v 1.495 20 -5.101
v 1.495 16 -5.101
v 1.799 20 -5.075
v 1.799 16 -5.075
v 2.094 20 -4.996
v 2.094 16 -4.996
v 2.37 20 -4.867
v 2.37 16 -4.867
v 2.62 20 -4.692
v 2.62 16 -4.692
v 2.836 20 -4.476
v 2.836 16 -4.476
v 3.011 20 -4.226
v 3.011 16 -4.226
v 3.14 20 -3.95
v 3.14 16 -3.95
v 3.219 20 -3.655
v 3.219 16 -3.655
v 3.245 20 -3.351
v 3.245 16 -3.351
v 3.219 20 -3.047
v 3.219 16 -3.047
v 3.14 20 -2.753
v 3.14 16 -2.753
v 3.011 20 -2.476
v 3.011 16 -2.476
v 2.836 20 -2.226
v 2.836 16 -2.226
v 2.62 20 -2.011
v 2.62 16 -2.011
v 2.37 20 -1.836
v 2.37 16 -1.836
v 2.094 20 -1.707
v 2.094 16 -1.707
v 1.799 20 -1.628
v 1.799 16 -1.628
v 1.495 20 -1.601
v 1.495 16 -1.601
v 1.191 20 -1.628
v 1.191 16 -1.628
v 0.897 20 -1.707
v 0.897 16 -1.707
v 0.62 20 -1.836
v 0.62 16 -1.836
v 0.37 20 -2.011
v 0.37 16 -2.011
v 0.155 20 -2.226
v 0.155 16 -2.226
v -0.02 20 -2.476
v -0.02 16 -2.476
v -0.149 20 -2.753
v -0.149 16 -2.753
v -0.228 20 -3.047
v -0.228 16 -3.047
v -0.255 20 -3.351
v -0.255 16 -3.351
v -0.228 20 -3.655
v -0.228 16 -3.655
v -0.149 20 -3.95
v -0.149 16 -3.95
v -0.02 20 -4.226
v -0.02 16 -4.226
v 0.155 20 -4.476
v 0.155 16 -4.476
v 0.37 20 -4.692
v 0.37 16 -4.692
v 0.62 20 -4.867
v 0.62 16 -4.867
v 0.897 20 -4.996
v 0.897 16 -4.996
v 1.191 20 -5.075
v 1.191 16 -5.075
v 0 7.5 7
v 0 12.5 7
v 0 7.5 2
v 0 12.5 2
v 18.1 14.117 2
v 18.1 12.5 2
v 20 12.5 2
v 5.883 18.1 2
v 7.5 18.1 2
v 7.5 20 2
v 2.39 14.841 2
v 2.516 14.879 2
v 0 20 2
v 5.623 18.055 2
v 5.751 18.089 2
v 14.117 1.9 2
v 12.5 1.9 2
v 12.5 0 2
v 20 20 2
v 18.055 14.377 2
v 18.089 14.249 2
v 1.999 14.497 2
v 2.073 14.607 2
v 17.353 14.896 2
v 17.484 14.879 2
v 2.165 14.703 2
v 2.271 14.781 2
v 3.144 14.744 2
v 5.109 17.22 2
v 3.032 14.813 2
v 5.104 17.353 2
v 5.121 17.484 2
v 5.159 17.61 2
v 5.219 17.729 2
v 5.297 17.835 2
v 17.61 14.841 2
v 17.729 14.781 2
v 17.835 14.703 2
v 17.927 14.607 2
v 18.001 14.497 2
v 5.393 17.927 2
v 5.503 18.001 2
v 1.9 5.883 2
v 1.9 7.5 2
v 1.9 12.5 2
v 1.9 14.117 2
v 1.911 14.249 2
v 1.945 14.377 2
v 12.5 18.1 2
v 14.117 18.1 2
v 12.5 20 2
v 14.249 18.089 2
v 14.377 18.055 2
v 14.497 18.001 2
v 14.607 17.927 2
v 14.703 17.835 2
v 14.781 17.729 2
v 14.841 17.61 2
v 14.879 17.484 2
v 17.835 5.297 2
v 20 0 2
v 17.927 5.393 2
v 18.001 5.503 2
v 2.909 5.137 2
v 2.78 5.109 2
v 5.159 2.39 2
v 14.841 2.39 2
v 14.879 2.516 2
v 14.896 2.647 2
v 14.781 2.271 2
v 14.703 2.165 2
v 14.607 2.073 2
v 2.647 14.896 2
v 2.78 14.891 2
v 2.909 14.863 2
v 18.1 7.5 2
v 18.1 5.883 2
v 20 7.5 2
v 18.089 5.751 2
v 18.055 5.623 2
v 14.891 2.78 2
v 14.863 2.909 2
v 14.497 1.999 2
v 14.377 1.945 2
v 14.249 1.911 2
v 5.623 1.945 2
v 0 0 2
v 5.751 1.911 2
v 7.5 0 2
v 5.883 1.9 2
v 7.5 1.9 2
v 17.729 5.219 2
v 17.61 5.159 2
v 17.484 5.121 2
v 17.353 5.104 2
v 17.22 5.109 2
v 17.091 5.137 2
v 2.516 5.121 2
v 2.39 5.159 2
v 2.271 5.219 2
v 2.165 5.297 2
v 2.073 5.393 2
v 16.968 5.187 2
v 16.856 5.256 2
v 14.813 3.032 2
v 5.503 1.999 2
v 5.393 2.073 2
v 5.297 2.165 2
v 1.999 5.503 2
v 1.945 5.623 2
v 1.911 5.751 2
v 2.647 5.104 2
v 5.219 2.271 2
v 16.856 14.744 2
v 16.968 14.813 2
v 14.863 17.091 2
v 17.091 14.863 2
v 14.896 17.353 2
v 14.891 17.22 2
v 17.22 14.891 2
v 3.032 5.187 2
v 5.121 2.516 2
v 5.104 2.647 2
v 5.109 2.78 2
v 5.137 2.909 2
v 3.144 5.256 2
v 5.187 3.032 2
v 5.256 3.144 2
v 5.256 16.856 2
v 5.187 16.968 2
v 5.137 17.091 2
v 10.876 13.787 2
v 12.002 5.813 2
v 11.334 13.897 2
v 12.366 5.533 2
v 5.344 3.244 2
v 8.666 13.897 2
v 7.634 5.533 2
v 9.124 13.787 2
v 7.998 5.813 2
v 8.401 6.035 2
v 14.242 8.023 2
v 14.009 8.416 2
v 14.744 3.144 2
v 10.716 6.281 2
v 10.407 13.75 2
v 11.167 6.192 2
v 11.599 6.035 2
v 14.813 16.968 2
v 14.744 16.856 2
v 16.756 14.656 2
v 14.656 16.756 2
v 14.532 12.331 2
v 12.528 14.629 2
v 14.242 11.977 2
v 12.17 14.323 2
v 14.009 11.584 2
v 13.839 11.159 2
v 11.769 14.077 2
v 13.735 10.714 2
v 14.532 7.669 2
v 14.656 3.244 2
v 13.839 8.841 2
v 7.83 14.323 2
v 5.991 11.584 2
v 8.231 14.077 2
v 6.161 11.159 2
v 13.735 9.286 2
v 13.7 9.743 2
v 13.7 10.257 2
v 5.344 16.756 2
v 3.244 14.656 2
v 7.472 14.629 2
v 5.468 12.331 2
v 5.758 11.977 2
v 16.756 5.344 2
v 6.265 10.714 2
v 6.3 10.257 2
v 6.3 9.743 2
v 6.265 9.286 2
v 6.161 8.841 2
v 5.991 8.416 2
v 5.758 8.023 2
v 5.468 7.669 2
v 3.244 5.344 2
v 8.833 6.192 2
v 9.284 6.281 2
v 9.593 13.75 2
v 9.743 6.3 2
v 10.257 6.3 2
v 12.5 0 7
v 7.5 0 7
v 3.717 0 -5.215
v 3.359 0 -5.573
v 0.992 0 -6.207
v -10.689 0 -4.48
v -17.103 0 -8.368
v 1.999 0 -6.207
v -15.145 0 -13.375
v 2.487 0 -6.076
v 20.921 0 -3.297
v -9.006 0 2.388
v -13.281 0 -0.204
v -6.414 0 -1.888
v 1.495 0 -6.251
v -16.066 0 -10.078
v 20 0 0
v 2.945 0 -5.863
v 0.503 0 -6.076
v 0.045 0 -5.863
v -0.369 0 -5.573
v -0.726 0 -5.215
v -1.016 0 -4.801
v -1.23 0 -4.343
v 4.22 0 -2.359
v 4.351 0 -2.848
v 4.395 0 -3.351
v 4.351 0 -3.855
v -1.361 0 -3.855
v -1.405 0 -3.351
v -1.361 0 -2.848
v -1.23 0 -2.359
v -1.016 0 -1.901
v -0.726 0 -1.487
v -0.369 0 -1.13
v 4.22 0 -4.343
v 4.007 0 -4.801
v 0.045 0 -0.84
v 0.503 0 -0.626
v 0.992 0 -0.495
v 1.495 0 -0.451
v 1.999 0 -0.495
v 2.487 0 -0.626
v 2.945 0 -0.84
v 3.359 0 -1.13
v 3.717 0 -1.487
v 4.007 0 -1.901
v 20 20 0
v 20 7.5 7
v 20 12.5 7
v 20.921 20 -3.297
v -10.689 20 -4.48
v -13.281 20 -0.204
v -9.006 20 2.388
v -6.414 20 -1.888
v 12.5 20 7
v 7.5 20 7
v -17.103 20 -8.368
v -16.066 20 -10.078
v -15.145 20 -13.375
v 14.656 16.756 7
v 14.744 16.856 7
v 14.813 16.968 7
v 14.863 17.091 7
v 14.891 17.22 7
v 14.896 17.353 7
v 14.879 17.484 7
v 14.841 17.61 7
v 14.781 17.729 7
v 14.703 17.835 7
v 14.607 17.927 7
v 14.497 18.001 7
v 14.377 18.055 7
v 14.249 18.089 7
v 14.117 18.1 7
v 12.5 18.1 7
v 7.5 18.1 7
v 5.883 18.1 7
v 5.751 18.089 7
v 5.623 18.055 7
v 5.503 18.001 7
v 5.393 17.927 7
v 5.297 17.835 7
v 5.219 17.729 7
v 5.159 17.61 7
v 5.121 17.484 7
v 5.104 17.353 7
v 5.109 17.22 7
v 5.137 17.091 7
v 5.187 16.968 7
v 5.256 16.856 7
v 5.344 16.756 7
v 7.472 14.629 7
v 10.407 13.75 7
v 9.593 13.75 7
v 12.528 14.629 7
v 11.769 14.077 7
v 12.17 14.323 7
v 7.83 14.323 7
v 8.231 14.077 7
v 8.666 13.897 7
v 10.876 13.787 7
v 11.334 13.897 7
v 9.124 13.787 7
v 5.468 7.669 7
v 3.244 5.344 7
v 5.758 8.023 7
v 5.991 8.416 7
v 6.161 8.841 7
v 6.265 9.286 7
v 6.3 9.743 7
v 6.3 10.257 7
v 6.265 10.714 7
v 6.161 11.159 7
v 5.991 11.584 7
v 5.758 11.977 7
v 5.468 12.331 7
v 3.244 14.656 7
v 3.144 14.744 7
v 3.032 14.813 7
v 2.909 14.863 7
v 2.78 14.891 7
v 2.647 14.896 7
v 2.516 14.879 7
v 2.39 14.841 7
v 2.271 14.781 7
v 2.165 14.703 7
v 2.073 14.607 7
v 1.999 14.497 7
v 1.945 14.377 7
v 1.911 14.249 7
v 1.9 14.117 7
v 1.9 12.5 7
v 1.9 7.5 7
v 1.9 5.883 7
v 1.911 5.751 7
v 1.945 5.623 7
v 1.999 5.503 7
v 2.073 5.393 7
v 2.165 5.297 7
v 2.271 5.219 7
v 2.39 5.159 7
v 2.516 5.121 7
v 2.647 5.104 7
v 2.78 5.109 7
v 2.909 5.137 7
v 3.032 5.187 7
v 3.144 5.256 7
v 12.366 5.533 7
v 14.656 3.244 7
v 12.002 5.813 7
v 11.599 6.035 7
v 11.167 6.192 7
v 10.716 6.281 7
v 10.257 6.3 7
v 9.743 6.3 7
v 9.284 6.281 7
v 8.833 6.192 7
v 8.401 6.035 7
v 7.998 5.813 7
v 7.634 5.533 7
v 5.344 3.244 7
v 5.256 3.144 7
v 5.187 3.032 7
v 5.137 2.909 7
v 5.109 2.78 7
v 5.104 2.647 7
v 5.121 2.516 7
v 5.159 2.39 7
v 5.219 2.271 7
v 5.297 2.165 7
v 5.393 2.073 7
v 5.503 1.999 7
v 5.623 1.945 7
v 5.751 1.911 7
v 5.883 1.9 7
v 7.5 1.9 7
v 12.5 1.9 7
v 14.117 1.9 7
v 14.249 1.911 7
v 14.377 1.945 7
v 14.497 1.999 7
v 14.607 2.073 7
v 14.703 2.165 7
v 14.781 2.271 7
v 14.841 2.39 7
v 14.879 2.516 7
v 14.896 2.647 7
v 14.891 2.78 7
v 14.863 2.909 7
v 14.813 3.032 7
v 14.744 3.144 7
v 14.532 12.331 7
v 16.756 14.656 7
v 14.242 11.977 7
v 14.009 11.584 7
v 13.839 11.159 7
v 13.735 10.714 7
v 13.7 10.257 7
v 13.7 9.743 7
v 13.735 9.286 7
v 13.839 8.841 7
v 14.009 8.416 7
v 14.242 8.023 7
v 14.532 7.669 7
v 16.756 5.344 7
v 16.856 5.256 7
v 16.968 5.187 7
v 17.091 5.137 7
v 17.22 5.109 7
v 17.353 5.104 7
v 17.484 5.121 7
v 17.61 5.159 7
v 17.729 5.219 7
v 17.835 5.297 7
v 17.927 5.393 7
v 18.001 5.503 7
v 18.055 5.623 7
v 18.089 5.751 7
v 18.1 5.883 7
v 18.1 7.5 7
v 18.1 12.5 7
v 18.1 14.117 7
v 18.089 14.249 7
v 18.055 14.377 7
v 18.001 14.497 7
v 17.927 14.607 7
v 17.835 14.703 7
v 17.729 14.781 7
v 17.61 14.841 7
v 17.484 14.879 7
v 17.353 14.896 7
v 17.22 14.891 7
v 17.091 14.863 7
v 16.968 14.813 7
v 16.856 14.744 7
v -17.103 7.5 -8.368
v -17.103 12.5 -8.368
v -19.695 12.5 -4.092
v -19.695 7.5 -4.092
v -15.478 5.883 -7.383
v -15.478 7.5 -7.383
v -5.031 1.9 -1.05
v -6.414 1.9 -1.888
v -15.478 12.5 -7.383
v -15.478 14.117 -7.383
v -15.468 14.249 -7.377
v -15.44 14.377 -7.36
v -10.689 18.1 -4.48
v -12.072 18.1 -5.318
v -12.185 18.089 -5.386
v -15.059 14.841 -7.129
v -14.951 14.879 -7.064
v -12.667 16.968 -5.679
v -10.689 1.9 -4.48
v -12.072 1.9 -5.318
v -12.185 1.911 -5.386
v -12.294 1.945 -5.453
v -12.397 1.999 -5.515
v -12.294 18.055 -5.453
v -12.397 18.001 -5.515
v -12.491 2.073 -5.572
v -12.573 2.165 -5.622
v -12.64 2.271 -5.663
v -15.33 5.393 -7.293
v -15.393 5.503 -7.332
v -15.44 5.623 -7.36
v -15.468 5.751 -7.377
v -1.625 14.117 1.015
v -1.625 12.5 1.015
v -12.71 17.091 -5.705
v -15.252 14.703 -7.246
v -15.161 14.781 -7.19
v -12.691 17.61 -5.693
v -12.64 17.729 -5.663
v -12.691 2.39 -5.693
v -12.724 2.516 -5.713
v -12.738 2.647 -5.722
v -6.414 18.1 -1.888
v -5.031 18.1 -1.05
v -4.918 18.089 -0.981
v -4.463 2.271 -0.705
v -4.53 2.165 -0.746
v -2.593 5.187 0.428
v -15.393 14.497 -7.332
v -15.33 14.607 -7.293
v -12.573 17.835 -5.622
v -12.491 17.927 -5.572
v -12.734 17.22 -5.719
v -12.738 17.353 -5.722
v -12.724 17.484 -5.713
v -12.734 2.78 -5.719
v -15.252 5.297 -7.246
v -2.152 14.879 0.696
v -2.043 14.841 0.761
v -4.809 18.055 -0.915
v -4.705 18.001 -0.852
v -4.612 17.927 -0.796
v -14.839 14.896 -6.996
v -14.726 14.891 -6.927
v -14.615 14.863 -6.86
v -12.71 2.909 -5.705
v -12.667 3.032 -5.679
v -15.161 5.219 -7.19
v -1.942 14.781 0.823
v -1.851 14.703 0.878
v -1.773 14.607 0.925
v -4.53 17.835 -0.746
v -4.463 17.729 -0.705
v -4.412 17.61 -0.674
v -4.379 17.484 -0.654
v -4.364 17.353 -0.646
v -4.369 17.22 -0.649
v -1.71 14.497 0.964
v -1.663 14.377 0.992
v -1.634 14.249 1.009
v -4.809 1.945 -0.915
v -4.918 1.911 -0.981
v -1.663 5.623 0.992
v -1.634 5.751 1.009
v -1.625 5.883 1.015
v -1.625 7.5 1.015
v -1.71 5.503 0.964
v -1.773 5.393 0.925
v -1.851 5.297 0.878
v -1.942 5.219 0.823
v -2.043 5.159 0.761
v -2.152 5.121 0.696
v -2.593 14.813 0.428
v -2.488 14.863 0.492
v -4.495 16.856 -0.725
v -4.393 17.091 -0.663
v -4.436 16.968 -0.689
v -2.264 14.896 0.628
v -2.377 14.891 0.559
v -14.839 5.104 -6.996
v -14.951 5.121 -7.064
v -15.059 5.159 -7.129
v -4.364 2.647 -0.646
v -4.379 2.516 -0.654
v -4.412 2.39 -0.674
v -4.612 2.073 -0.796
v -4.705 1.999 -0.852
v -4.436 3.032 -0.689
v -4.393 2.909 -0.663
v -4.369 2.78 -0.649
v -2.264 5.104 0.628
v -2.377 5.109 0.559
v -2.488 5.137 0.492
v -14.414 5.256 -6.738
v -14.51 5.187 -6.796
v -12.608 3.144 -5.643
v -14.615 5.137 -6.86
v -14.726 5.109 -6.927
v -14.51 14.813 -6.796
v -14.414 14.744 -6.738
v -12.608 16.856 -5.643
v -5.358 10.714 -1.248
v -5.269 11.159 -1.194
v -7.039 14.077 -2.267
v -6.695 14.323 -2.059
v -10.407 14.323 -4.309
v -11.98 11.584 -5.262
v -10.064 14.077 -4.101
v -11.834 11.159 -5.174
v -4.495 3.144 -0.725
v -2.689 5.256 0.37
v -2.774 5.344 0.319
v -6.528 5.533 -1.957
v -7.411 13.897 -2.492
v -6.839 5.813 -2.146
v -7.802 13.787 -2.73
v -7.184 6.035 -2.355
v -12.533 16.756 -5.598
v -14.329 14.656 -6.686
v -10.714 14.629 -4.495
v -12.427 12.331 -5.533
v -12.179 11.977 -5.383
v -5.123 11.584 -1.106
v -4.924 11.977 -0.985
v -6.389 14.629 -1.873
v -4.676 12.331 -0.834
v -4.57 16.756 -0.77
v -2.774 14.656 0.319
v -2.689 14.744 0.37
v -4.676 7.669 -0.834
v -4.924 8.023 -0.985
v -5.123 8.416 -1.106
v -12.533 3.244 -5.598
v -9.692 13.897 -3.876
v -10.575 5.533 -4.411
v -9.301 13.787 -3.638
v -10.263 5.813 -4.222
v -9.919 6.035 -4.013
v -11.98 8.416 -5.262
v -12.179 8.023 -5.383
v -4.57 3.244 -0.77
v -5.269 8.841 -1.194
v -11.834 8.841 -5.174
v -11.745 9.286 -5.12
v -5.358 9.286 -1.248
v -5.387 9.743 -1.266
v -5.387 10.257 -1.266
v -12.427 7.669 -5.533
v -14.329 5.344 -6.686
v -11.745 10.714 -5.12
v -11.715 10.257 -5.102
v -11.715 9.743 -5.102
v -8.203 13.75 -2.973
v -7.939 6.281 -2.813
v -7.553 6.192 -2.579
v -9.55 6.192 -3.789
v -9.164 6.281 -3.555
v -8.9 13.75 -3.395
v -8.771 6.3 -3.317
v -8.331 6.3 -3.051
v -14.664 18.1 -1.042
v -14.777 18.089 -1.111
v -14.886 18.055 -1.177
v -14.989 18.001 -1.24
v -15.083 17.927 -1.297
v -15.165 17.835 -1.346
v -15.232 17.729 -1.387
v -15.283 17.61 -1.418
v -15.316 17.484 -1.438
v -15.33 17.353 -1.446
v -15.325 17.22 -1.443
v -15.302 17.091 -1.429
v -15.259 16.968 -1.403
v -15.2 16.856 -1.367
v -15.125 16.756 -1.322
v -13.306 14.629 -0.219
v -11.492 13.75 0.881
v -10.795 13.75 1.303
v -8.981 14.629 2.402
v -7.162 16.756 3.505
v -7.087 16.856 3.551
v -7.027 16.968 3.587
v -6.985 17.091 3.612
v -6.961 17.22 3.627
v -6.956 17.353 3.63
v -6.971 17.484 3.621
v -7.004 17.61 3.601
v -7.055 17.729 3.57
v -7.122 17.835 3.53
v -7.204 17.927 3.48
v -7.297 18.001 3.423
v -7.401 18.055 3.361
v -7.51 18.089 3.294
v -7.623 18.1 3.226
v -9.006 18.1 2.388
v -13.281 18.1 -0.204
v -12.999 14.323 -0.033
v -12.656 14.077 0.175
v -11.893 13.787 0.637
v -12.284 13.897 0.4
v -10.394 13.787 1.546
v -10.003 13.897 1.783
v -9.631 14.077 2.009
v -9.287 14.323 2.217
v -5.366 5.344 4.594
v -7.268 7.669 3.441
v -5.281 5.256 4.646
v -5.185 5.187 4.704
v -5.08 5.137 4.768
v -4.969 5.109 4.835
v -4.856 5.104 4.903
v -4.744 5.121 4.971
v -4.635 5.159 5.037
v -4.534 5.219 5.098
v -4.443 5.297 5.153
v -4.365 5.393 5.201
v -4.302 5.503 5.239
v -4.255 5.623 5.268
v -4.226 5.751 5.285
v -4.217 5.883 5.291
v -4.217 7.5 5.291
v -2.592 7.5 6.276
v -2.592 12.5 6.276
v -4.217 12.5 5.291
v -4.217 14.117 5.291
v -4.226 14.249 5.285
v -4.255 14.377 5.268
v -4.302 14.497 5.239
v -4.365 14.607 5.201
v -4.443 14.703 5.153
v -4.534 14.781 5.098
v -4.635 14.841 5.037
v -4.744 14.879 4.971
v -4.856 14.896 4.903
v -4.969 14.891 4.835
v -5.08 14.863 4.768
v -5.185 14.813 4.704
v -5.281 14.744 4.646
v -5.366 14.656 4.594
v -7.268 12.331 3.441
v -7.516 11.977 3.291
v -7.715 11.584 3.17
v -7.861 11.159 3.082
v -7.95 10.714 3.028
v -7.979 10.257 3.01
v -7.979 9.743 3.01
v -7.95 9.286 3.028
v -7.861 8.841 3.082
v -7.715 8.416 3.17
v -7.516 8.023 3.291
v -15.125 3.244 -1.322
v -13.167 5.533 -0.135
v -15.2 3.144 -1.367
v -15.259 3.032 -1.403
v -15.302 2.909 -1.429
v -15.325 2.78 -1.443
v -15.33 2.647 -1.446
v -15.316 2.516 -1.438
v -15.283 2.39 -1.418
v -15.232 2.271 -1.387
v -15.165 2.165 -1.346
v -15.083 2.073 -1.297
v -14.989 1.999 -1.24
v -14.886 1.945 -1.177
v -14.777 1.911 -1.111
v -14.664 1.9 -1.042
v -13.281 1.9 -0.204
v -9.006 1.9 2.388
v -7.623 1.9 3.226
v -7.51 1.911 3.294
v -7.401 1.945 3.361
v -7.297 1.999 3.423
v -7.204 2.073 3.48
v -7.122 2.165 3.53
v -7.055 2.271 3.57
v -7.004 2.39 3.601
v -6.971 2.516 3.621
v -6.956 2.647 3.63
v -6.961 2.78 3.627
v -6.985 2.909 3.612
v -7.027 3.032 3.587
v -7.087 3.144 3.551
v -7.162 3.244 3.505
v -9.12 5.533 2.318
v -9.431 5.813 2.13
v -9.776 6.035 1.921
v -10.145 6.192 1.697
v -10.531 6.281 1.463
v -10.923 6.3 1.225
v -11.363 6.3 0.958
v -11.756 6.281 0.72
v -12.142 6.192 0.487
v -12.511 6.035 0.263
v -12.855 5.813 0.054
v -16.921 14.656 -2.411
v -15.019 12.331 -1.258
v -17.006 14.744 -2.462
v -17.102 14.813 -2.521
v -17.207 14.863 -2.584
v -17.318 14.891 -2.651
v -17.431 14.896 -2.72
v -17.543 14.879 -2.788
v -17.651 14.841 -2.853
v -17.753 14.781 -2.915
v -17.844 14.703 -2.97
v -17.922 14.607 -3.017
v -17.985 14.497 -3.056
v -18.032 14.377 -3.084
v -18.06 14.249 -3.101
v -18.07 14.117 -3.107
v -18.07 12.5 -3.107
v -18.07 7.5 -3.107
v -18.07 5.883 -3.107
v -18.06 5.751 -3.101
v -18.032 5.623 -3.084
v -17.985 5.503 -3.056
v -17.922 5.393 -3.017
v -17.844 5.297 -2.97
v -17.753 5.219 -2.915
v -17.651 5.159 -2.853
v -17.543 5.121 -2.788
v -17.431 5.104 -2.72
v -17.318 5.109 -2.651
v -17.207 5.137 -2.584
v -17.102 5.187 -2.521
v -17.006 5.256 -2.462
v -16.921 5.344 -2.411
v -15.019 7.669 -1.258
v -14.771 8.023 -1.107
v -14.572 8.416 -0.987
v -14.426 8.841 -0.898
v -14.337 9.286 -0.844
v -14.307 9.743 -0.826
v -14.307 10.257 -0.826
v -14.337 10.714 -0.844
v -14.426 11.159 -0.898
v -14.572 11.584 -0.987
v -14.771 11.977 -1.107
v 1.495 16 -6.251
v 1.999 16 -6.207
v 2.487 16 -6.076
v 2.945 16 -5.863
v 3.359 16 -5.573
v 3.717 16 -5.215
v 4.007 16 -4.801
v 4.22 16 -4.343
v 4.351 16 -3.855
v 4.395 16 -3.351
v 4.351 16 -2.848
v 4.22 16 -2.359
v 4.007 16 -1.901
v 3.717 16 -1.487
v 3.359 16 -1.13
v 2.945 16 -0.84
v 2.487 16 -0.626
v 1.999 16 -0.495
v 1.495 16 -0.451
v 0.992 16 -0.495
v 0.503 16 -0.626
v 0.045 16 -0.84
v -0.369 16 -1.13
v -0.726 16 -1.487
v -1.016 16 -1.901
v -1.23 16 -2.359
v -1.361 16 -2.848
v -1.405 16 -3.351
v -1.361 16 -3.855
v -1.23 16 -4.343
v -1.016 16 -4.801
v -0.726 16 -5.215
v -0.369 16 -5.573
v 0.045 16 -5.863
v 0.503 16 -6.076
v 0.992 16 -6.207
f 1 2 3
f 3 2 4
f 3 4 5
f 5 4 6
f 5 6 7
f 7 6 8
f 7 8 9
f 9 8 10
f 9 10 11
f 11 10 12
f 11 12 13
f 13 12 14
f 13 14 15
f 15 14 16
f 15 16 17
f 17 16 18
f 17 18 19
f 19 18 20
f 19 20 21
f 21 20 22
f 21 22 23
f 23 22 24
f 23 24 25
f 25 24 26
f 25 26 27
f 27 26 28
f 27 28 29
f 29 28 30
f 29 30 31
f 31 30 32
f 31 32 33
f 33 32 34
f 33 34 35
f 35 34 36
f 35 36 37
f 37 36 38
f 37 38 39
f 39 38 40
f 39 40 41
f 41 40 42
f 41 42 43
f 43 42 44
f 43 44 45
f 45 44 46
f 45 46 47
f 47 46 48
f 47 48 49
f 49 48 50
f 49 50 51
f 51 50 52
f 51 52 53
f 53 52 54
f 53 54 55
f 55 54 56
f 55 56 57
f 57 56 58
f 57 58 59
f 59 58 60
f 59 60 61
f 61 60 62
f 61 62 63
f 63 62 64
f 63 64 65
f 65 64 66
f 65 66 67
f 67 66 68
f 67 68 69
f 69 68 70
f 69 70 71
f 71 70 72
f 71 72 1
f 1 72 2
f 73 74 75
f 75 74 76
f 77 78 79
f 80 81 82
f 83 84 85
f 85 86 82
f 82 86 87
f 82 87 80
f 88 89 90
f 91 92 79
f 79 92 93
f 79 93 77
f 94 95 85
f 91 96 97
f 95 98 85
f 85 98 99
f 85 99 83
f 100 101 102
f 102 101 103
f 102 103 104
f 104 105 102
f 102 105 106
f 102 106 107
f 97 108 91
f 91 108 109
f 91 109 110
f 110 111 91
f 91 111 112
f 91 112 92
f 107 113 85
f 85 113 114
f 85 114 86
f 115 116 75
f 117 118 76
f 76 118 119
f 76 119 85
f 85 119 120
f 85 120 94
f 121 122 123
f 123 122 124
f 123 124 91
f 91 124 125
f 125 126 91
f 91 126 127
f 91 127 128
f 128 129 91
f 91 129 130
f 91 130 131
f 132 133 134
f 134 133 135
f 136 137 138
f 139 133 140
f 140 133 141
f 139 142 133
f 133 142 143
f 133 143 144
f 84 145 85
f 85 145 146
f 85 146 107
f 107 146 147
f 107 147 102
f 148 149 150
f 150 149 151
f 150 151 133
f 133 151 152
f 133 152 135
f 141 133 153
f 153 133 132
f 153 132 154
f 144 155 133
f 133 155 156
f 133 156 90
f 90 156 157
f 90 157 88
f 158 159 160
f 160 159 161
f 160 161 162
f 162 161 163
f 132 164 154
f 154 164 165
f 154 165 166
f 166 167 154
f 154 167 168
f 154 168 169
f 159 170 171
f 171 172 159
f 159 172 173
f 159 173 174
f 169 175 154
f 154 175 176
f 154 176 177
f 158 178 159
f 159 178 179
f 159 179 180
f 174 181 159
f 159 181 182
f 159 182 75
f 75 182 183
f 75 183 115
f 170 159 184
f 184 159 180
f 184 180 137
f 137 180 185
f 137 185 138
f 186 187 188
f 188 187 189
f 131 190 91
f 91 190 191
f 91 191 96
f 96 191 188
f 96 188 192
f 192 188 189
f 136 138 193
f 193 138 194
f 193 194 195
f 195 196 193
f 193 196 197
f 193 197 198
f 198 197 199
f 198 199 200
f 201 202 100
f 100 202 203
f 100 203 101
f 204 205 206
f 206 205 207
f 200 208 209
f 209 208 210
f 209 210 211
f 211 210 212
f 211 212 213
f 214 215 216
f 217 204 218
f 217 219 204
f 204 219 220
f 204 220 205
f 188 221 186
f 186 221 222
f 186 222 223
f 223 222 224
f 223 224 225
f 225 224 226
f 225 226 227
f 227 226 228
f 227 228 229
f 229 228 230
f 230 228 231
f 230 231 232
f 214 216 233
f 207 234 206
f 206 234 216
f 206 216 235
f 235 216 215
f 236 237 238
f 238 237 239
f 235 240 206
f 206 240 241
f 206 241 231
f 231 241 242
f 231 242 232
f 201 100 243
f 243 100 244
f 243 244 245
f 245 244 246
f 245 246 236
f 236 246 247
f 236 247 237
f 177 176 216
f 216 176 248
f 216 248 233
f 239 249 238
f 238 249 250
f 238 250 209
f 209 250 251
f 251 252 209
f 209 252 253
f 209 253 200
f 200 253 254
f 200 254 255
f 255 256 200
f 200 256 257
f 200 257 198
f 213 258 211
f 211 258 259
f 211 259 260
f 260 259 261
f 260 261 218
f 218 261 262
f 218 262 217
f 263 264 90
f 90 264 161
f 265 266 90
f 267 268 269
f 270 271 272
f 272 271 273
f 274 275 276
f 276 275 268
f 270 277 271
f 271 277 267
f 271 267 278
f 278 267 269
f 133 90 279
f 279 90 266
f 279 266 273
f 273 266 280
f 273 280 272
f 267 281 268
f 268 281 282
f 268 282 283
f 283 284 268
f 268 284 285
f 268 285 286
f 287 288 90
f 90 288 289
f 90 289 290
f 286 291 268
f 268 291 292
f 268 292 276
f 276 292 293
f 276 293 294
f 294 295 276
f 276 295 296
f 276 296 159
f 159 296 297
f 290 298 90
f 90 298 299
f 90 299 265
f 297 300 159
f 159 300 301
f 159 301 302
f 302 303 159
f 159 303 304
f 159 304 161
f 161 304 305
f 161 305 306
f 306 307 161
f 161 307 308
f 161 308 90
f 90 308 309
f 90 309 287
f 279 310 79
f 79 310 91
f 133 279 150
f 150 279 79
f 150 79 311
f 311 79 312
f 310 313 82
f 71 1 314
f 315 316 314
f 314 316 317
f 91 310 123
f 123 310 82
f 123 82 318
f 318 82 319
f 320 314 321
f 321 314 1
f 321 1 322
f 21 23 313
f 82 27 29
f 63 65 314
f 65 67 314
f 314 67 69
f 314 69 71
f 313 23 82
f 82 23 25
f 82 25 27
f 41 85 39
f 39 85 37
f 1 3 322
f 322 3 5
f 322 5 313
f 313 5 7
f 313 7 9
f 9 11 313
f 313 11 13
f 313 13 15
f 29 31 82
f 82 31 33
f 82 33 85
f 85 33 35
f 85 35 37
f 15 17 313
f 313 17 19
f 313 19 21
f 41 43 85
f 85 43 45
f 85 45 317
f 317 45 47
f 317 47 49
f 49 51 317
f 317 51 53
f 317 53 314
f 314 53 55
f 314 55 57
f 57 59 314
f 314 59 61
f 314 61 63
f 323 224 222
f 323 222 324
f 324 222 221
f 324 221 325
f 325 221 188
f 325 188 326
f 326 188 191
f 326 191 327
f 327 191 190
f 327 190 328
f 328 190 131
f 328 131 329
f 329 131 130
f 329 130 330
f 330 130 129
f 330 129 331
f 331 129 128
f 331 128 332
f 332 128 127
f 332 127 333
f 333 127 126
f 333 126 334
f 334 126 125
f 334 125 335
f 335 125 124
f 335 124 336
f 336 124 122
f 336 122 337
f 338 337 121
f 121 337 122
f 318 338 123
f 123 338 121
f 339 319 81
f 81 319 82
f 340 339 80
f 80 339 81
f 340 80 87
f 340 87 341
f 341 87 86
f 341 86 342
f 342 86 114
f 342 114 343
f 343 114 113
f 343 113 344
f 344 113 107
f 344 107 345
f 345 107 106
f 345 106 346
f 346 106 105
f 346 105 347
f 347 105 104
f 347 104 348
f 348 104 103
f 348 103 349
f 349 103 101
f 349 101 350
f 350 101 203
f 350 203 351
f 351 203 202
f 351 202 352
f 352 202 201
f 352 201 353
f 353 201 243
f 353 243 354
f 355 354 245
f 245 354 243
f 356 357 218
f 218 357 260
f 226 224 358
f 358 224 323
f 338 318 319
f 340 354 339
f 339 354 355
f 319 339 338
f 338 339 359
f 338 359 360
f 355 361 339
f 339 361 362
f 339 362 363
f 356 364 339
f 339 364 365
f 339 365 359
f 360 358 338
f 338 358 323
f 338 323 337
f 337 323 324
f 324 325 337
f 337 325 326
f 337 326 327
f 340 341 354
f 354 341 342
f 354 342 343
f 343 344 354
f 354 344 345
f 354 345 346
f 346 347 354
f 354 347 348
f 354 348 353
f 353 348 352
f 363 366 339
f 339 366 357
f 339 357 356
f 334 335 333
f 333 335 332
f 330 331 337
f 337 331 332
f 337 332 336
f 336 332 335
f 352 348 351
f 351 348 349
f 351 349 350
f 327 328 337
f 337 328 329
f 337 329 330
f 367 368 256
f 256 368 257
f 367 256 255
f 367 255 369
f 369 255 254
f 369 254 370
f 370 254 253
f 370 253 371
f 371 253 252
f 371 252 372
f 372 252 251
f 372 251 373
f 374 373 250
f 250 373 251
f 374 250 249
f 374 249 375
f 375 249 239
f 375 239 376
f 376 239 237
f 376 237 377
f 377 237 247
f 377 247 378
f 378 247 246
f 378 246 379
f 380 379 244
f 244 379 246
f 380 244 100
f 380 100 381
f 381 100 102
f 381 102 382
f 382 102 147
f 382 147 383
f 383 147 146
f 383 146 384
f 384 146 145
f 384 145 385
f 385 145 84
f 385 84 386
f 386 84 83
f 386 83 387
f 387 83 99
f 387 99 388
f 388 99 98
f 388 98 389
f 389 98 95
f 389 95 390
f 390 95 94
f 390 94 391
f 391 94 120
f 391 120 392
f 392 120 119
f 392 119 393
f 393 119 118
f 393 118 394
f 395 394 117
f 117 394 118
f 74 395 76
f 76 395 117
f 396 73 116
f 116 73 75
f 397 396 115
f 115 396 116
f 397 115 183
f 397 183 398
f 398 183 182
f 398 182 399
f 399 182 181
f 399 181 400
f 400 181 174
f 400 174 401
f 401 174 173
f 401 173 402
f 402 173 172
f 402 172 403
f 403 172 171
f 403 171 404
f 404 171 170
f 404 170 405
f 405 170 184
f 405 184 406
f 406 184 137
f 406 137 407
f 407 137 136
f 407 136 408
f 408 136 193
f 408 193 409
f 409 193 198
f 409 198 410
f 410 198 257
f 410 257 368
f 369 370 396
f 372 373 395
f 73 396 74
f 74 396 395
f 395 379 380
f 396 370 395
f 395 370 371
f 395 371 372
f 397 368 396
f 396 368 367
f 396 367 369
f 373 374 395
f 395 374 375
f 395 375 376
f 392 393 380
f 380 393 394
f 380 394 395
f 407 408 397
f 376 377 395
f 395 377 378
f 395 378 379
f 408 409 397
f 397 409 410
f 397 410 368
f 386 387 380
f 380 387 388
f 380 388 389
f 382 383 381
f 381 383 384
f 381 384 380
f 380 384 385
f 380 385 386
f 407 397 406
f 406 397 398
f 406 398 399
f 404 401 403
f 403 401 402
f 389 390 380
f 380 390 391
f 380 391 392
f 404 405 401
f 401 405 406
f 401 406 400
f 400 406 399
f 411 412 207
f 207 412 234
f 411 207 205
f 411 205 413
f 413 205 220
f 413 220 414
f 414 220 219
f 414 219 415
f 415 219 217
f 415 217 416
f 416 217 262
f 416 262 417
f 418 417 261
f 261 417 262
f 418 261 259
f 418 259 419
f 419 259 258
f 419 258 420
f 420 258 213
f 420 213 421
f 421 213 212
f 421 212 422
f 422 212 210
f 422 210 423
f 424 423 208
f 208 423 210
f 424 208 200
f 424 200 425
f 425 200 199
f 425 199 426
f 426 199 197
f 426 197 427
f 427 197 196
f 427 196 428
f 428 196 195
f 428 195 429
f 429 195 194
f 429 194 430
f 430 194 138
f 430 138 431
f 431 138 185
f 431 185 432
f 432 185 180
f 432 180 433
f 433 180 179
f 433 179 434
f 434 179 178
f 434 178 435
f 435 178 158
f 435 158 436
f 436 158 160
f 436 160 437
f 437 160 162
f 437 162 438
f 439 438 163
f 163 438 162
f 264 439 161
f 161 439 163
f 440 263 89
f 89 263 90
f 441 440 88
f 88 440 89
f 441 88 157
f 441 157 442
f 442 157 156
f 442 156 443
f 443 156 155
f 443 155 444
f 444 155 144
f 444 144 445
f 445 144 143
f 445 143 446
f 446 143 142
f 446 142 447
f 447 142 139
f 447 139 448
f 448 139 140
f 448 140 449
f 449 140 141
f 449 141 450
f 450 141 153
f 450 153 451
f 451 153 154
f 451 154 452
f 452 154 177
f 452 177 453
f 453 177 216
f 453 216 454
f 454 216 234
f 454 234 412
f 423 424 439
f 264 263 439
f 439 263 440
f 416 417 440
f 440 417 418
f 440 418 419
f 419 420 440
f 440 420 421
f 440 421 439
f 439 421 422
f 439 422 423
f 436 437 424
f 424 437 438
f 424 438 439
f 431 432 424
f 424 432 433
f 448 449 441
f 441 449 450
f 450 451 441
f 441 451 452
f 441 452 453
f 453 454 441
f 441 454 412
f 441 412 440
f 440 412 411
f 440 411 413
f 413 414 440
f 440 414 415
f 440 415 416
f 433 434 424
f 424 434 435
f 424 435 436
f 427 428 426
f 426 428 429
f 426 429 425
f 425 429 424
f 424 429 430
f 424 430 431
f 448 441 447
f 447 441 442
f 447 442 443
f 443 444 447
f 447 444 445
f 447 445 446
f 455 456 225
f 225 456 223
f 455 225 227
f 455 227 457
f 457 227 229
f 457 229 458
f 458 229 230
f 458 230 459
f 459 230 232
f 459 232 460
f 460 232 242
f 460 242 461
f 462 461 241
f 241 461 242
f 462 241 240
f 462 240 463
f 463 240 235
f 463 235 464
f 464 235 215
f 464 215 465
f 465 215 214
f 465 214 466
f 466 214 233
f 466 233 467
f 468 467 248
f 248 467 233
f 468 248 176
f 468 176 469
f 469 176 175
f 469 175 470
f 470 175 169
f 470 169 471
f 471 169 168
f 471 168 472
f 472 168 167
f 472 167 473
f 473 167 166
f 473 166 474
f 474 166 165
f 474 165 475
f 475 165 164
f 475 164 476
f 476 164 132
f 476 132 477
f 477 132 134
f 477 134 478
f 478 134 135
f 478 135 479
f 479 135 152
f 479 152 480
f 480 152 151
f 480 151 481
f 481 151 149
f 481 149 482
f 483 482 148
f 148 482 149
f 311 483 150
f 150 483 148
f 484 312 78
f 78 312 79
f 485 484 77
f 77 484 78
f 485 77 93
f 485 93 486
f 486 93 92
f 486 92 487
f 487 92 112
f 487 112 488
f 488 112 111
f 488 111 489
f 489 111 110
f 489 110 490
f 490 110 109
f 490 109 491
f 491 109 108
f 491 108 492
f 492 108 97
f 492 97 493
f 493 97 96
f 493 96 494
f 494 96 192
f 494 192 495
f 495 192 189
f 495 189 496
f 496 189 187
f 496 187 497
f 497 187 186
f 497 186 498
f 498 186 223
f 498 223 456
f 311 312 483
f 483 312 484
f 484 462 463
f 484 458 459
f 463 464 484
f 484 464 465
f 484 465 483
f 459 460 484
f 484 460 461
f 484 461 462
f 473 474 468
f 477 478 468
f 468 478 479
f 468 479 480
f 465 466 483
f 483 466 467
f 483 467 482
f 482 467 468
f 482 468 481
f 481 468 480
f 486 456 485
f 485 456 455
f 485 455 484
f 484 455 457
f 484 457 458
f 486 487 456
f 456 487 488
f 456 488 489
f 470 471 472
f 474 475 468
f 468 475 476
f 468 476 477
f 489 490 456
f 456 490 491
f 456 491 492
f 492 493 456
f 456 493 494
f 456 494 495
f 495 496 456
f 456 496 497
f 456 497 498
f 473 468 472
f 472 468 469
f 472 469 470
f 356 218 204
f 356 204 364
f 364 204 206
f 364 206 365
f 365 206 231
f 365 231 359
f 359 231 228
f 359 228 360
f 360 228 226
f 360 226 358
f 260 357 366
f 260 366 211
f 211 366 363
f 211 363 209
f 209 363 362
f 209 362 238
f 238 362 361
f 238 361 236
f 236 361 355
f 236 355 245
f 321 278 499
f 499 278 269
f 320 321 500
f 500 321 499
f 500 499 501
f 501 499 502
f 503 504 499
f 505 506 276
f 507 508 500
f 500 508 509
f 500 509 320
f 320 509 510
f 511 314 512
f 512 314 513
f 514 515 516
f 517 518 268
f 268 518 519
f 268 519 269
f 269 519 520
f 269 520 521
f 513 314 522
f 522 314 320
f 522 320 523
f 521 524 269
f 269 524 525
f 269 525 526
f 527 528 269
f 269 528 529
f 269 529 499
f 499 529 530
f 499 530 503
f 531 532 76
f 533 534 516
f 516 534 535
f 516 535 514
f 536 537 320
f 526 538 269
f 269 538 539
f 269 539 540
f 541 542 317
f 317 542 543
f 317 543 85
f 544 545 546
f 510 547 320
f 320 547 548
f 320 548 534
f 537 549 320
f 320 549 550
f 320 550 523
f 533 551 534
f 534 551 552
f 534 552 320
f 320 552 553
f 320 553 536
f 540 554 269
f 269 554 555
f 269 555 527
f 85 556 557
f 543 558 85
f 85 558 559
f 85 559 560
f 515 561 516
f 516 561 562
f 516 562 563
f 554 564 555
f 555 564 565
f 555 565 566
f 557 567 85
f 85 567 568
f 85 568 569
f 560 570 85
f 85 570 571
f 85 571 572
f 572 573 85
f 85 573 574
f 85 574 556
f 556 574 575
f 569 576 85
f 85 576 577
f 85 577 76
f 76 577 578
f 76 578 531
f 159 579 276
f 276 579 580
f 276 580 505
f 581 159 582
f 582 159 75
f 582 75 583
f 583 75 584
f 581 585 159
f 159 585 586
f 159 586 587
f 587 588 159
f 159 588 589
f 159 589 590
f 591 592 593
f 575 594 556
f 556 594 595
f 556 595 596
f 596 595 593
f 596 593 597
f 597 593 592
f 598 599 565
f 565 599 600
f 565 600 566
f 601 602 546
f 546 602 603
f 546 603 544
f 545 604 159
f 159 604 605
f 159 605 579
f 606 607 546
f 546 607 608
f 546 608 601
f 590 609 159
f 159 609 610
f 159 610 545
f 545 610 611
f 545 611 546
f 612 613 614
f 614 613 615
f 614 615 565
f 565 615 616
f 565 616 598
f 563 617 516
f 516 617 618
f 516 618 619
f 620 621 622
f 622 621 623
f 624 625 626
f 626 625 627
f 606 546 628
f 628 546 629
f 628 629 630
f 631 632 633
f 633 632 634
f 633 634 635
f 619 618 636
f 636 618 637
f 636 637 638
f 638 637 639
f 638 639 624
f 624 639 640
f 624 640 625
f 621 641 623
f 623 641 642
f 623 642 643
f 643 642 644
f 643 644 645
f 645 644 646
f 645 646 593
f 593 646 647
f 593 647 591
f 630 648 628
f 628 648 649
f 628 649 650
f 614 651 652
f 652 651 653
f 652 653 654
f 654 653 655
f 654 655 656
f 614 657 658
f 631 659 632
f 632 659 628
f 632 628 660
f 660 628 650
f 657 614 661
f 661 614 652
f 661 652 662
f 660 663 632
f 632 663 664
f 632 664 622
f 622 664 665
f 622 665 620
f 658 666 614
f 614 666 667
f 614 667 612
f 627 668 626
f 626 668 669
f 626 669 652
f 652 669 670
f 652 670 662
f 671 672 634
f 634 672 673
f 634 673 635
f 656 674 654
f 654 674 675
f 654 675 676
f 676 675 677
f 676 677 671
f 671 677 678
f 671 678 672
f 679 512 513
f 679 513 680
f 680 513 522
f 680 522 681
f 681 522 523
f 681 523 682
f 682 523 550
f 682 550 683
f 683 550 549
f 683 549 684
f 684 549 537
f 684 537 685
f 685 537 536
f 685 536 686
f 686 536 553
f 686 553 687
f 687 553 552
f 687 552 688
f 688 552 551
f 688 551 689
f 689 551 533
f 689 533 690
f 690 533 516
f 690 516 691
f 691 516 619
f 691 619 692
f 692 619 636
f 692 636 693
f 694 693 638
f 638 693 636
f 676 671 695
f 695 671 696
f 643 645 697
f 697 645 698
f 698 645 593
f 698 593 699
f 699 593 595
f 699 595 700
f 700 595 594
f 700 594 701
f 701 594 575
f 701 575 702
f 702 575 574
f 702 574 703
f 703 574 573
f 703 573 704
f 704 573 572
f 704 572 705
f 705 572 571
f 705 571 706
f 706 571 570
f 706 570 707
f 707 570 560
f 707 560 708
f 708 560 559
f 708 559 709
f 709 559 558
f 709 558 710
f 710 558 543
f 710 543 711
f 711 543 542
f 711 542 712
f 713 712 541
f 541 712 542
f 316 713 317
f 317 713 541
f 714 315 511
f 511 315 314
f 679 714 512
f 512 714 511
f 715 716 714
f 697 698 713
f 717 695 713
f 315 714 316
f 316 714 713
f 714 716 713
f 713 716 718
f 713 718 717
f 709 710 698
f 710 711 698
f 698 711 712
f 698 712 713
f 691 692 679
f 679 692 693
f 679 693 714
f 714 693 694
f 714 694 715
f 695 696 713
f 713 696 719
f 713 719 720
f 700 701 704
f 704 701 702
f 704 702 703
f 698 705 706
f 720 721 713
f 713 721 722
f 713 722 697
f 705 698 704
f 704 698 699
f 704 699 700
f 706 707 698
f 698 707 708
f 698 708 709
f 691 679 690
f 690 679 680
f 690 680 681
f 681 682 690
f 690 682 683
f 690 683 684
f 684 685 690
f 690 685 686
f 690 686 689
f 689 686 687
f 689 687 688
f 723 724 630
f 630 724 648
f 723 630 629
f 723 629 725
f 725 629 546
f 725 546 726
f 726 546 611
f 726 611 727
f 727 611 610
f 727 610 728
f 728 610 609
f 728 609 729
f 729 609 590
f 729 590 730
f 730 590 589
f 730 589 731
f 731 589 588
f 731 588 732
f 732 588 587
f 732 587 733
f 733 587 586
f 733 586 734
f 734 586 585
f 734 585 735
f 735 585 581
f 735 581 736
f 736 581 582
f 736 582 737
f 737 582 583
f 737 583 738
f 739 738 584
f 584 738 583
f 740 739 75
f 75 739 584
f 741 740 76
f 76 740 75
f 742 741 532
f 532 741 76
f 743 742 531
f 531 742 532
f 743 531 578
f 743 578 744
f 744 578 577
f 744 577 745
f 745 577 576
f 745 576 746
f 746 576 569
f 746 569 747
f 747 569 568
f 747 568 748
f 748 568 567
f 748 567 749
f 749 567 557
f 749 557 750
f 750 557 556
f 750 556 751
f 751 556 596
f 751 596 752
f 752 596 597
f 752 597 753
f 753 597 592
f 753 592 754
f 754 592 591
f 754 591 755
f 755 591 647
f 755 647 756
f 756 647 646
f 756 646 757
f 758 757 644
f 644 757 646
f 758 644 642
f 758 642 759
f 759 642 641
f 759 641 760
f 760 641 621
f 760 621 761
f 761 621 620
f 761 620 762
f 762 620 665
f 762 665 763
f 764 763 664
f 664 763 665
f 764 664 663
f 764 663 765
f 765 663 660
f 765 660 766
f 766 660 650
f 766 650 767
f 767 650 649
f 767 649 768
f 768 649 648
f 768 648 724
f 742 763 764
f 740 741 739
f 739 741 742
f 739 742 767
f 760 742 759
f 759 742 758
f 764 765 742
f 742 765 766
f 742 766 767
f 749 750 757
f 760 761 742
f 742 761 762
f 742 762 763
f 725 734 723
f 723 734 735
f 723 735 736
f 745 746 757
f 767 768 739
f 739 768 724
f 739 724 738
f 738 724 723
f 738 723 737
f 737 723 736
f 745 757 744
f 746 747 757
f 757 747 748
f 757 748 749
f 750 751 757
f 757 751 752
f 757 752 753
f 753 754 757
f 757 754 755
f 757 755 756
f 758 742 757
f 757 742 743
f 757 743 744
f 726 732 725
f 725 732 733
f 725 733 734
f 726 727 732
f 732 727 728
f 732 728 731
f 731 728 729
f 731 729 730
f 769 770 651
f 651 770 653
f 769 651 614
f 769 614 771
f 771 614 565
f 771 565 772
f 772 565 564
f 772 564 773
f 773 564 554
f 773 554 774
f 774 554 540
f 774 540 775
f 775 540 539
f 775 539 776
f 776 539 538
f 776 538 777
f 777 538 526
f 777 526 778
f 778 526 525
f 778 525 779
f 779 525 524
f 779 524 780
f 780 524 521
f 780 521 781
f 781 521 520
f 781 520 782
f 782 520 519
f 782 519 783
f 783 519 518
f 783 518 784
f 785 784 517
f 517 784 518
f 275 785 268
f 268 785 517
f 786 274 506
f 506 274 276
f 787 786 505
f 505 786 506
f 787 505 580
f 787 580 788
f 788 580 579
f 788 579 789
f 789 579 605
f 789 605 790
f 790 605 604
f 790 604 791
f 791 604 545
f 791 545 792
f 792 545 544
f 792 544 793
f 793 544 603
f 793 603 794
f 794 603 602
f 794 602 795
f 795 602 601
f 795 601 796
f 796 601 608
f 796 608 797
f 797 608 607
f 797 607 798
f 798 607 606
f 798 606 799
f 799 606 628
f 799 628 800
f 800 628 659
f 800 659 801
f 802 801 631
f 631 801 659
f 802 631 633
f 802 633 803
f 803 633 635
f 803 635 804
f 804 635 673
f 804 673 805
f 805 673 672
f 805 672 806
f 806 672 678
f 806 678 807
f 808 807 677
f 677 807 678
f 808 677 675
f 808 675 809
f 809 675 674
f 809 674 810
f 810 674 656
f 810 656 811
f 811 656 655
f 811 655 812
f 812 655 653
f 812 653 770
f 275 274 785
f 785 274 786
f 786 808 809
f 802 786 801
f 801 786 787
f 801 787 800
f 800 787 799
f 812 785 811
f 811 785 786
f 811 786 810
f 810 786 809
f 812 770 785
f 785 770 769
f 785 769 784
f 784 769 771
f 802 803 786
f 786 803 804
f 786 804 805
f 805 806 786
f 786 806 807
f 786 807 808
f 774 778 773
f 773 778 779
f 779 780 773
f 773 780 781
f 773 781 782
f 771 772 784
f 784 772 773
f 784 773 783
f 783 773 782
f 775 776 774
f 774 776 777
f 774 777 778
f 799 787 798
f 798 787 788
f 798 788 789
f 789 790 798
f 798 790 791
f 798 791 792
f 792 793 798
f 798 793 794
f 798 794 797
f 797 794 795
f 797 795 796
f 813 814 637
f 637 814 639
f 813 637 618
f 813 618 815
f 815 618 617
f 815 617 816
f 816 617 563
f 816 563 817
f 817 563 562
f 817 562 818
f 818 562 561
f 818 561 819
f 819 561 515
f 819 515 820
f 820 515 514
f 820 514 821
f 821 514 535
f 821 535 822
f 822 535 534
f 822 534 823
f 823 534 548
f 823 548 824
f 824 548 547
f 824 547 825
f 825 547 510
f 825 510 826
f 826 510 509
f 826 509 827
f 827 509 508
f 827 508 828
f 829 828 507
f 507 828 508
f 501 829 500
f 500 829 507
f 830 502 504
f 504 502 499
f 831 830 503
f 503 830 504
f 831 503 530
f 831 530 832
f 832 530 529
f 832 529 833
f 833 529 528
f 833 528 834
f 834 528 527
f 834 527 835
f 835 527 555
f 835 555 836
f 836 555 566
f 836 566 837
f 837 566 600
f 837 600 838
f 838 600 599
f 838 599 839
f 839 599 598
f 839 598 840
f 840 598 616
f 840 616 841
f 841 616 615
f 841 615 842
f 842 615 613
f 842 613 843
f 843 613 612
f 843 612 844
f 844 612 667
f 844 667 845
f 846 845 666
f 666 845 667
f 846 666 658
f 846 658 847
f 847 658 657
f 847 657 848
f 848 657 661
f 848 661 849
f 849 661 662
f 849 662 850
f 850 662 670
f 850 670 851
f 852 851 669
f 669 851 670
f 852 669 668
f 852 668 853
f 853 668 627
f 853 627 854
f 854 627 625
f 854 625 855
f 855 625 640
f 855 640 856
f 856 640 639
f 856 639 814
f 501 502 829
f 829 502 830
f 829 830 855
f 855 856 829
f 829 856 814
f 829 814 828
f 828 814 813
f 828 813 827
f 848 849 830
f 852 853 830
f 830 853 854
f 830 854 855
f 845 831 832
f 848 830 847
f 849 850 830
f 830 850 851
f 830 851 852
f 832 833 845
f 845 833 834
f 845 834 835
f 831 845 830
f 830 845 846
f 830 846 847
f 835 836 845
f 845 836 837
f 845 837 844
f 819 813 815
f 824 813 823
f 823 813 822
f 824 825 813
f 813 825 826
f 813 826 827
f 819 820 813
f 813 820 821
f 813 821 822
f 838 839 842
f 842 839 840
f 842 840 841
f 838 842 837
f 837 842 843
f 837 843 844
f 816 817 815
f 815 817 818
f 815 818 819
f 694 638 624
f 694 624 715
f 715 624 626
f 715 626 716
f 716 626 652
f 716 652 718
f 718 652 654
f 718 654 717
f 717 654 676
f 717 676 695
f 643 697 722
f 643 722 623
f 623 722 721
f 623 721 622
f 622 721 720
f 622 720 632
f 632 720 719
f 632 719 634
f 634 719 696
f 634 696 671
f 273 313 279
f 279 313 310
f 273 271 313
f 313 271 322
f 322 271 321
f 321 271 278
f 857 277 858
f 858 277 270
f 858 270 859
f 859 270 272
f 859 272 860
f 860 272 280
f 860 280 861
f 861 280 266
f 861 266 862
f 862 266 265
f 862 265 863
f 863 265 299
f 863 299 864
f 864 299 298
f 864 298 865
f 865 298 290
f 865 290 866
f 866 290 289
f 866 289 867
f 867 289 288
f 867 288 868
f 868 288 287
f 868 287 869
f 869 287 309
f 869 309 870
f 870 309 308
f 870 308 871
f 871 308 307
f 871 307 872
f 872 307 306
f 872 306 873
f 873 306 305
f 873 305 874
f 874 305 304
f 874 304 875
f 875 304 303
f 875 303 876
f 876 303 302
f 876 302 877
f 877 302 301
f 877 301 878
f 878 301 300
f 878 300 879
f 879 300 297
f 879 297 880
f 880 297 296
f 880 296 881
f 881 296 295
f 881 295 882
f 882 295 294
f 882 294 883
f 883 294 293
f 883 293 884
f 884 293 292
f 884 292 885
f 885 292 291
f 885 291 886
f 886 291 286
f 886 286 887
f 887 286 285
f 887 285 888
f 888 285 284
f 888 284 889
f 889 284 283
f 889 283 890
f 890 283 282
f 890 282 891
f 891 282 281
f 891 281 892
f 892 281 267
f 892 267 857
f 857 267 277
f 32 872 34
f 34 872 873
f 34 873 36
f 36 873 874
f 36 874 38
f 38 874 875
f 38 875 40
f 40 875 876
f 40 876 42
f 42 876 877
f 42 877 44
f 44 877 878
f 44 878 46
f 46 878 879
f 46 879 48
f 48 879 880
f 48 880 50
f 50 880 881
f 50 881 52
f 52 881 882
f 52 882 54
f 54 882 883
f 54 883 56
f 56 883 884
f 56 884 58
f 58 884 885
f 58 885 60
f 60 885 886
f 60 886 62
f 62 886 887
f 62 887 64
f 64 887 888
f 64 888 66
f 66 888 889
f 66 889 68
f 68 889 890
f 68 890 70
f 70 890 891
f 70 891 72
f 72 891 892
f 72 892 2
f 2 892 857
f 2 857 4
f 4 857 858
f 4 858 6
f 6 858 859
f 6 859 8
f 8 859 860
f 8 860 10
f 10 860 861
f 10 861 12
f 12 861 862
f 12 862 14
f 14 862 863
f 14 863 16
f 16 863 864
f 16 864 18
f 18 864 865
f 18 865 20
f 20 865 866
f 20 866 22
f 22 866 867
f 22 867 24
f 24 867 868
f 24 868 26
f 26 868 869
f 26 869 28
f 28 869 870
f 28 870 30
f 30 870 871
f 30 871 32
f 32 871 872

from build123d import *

# Parameters (mm, degrees)
SKIZZE1_W                       = 20
SKIZZE1_H                       = 20
AUFSATZ_LINEAR_AUSTRAGEN1_DEPTH = 2
AUFSATZ_LINEAR_AUSTRAGEN3_DEPTH = 5
VERRUNDUNG1_R                   = 3
VERRUNDUNG1_OF_SPIEGELN1_R      = 3
AUFSATZ_LINEAR_AUSTRAGEN4_REACH = 35.564
SKIZZE3_W                       = 37.447689889
SKIZZE3_H                       = 20
SCHNITT_LINEAR_AUSTRAGEN1_DEPTH = 32.884097459
SKIZZE4_3_R                     = 2.9
SKIZZE4_3_R_2                   = 1.75
SCHNITT_LINEAR_AUSTRAGEN2_DEPTH = 16


with BuildPart() as part:
    # Skizze1 → Aufsatz-Linear austragen1 (new body)
    with BuildSketch(Plane.XY):
        with Locations((10, 10)):
            Rectangle(SKIZZE1_W, SKIZZE1_H)
    aufsatz_linear_austragen1 = extrude(amount=AUFSATZ_LINEAR_AUSTRAGEN1_DEPTH)

    # Skizze2 → Aufsatz-Linear austragen3 (add)
    with BuildSketch(Plane.XY.offset(2)):
        with BuildLine():
            Line((12.5, 18.1), (12.5, 20))
            Line((12.5, 20), (7.5, 20))
            Line((7.5, 20), (7.5, 18.1))
            Line((7.5, 18.1), (5.883086579, 18.1))
            ThreePointArc((5.883086579, 18.1), (5.159199271, 17.610494692), (5.343893194, 16.756377348))
            Line((5.343893194, 16.756377348), (8.350270542, 13.75))
            Line((8.350270542, 13.75), (11.649729458, 13.75))
            Line((11.649729458, 13.75), (14.656106806, 16.756377348))
            ThreePointArc((14.656106806, 16.756377348), (14.840800729, 17.610494692), (14.116913421, 18.1))
            Line((14.116913421, 18.1), (12.5, 18.1))
        make_face()
        with BuildLine():
            Line((1.9, 12.5), (0, 12.5))
            Line((0, 12.5), (0, 7.5))
            Line((0, 7.5), (1.9, 7.5))
            Line((1.9, 7.5), (1.9, 5.883086579))
            ThreePointArc((1.9, 5.883086579), (2.389505308, 5.159199271), (3.243622652, 5.343893194))
            Line((3.243622652, 5.343893194), (5.46777943, 7.668819976))
            ThreePointArc((5.46777943, 7.668819976), (6.084181953, 8.625353412), (6.3, 9.742640687))
            Line((6.3, 9.742640687), (6.3, 10.257359313))
            ThreePointArc((6.3, 10.257359313), (6.084181953, 11.374646588), (5.46777943, 12.331180024))
            Line((5.46777943, 12.331180024), (3.243622652, 14.656106806))
            ThreePointArc((3.243622652, 14.656106806), (2.389505308, 14.840800729), (1.9, 14.116913421))
            Line((1.9, 14.116913421), (1.9, 12.5))
        make_face()
        with BuildLine():
            Line((7.5, 0), (12.5, 0))
            Line((12.5, 0), (12.5, 1.9))
            Line((12.5, 1.9), (14.116913421, 1.9))
            ThreePointArc((14.116913421, 1.9), (14.840800729, 2.389505308), (14.656106806, 3.243622652))
            Line((14.656106806, 3.243622652), (12.366329752, 5.533399706))
            ThreePointArc((12.366329752, 5.533399706), (11.386219612, 6.121310843), (10.257359313, 6.3))
            Line((10.257359313, 6.3), (9.742640687, 6.3))
            ThreePointArc((9.742640687, 6.3), (8.613780388, 6.121310843), (7.633670248, 5.533399706))
            Line((7.633670248, 5.533399706), (5.343893194, 3.243622652))
            ThreePointArc((5.343893194, 3.243622652), (5.159199271, 2.389505308), (5.883086579, 1.9))
            Line((5.883086579, 1.9), (7.5, 1.9))
            Line((7.5, 1.9), (7.5, 0))
        make_face()
        with BuildLine():
            Line((20, 7.5), (20, 12.5))
            Line((20, 12.5), (18.1, 12.5))
            Line((18.1, 12.5), (18.1, 14.116913421))
            ThreePointArc((18.1, 14.116913421), (17.610494692, 14.840800729), (16.756377348, 14.656106806))
            Line((16.756377348, 14.656106806), (14.53222057, 12.331180024))
            ThreePointArc((14.53222057, 12.331180024), (13.915818047, 11.374646588), (13.7, 10.257359313))
            Line((13.7, 10.257359313), (13.7, 9.742640687))
            ThreePointArc((13.7, 9.742640687), (13.915818047, 8.625353412), (14.53222057, 7.668819976))
            Line((14.53222057, 7.668819976), (16.756377348, 5.343893194))
            ThreePointArc((16.756377348, 5.343893194), (17.610494692, 5.159199271), (18.1, 5.883086579))
            Line((18.1, 5.883086579), (18.1, 7.5))
            Line((18.1, 7.5), (20, 7.5))
        make_face()
    aufsatz_linear_austragen3 = extrude(amount=AUFSATZ_LINEAR_AUSTRAGEN3_DEPTH)

    # Verrundung1
    verrundung1_edges = [part.edges().sort_by_distance(p)[0] for p in [
        (8.350270542, 13.75, 4.5),
        (11.649729458, 13.75, 4.5),
    ]]
    fillet(verrundung1_edges, radius=VERRUNDUNG1_R)

    # Spiegeln1: Aufsatz-Linear austragen1, Aufsatz-Linear austragen3 across plane
    add(aufsatz_linear_austragen1.mirror(Plane(origin=(0.518393786, 0, 0.144857975), x_dir=(-0.2691263412444344, 0, 0.963104881333484), z_dir=(-0.9631048813334839, 0, -0.2691263412444344))))
    add(aufsatz_linear_austragen3.mirror(Plane(origin=(0.518393786, 0, 0.144857975), x_dir=(-0.2691263412444344, 0, 0.963104881333484), z_dir=(-0.9631048813334839, 0, -0.2691263412444344))))

    # Verrundung1 of Spiegeln1
    verrundung1_of_spiegeln1_edges = [part.edges().sort_by_distance(p)[0] for p in [
        (-8.436651724, 13.75, -0.190873297),
        (-11.258157703, 13.75, -1.901292296),
    ]]
    fillet(verrundung1_of_spiegeln1_edges, radius=VERRUNDUNG1_OF_SPIEGELN1_R)

    # Skizze3 → Aufsatz-Linear austragen4 (add, up to next)
    with BuildSketch(Plane(origin=(2.36988033, 0, -8.480936141), x_dir=(-0.963104881333484, 0, -0.26912634124443463), z_dir=(0.26912634124443463, 0, -0.963104881333484)), mode=Mode.PRIVATE) as aufsatz_linear_austragen4_sk1:
        with Locations((-0.538252683, 10)):
            Rectangle(SKIZZE3_W, SKIZZE3_H)
    aufsatz_linear_austragen4_tool1 = extrude(aufsatz_linear_austragen4_sk1.sketch, amount=-AUFSATZ_LINEAR_AUSTRAGEN4_REACH, mode=Mode.PRIVATE) - part.part
    add(aufsatz_linear_austragen4_tool1.solids().sort_by_distance((2.888274, 10, -8.336078))[0])

    # Skizze4 → Schnitt-Linear austragen1 (cut, through all)
    with BuildSketch(Plane.XZ):
        with BuildLine():
            ThreePointArc((3.245339923, -3.351275437), (2.553238921, -1.957234652), (1.024368826, -1.665841895))
            Line((1.024368826, -1.665841895), (1.966311021, -5.03670898))
            ThreePointArc((1.966311021, -5.03670898), (2.889380708, -4.409174435), (3.245339923, -3.351275437))
        make_face()
        with BuildLine():
            Line((1.966311021, -5.03670898), (1.024368826, -1.665841895))
            ThreePointArc((1.024368826, -1.665841895), (-0.190093619, -3.822246535), (1.966311021, -5.03670898))
        make_face()
    extrude(amount=-SCHNITT_LINEAR_AUSTRAGEN1_DEPTH, mode=Mode.SUBTRACT)

    # Skizze4<3> → Schnitt-Linear austragen2 (cut)
    with BuildSketch(Plane.XZ):
        with Locations(Location((1.495339923, -3.351275437, 0), (0, 0, 270))):
            Circle(SKIZZE4_3_R)
        with Locations(Location((1.495339923, -3.351275437, 0), (0, 0, 270))):
            Circle(SKIZZE4_3_R_2, mode=Mode.SUBTRACT)
    extrude(amount=-SCHNITT_LINEAR_AUSTRAGEN2_DEPTH, mode=Mode.SUBTRACT)


solid = part.part
